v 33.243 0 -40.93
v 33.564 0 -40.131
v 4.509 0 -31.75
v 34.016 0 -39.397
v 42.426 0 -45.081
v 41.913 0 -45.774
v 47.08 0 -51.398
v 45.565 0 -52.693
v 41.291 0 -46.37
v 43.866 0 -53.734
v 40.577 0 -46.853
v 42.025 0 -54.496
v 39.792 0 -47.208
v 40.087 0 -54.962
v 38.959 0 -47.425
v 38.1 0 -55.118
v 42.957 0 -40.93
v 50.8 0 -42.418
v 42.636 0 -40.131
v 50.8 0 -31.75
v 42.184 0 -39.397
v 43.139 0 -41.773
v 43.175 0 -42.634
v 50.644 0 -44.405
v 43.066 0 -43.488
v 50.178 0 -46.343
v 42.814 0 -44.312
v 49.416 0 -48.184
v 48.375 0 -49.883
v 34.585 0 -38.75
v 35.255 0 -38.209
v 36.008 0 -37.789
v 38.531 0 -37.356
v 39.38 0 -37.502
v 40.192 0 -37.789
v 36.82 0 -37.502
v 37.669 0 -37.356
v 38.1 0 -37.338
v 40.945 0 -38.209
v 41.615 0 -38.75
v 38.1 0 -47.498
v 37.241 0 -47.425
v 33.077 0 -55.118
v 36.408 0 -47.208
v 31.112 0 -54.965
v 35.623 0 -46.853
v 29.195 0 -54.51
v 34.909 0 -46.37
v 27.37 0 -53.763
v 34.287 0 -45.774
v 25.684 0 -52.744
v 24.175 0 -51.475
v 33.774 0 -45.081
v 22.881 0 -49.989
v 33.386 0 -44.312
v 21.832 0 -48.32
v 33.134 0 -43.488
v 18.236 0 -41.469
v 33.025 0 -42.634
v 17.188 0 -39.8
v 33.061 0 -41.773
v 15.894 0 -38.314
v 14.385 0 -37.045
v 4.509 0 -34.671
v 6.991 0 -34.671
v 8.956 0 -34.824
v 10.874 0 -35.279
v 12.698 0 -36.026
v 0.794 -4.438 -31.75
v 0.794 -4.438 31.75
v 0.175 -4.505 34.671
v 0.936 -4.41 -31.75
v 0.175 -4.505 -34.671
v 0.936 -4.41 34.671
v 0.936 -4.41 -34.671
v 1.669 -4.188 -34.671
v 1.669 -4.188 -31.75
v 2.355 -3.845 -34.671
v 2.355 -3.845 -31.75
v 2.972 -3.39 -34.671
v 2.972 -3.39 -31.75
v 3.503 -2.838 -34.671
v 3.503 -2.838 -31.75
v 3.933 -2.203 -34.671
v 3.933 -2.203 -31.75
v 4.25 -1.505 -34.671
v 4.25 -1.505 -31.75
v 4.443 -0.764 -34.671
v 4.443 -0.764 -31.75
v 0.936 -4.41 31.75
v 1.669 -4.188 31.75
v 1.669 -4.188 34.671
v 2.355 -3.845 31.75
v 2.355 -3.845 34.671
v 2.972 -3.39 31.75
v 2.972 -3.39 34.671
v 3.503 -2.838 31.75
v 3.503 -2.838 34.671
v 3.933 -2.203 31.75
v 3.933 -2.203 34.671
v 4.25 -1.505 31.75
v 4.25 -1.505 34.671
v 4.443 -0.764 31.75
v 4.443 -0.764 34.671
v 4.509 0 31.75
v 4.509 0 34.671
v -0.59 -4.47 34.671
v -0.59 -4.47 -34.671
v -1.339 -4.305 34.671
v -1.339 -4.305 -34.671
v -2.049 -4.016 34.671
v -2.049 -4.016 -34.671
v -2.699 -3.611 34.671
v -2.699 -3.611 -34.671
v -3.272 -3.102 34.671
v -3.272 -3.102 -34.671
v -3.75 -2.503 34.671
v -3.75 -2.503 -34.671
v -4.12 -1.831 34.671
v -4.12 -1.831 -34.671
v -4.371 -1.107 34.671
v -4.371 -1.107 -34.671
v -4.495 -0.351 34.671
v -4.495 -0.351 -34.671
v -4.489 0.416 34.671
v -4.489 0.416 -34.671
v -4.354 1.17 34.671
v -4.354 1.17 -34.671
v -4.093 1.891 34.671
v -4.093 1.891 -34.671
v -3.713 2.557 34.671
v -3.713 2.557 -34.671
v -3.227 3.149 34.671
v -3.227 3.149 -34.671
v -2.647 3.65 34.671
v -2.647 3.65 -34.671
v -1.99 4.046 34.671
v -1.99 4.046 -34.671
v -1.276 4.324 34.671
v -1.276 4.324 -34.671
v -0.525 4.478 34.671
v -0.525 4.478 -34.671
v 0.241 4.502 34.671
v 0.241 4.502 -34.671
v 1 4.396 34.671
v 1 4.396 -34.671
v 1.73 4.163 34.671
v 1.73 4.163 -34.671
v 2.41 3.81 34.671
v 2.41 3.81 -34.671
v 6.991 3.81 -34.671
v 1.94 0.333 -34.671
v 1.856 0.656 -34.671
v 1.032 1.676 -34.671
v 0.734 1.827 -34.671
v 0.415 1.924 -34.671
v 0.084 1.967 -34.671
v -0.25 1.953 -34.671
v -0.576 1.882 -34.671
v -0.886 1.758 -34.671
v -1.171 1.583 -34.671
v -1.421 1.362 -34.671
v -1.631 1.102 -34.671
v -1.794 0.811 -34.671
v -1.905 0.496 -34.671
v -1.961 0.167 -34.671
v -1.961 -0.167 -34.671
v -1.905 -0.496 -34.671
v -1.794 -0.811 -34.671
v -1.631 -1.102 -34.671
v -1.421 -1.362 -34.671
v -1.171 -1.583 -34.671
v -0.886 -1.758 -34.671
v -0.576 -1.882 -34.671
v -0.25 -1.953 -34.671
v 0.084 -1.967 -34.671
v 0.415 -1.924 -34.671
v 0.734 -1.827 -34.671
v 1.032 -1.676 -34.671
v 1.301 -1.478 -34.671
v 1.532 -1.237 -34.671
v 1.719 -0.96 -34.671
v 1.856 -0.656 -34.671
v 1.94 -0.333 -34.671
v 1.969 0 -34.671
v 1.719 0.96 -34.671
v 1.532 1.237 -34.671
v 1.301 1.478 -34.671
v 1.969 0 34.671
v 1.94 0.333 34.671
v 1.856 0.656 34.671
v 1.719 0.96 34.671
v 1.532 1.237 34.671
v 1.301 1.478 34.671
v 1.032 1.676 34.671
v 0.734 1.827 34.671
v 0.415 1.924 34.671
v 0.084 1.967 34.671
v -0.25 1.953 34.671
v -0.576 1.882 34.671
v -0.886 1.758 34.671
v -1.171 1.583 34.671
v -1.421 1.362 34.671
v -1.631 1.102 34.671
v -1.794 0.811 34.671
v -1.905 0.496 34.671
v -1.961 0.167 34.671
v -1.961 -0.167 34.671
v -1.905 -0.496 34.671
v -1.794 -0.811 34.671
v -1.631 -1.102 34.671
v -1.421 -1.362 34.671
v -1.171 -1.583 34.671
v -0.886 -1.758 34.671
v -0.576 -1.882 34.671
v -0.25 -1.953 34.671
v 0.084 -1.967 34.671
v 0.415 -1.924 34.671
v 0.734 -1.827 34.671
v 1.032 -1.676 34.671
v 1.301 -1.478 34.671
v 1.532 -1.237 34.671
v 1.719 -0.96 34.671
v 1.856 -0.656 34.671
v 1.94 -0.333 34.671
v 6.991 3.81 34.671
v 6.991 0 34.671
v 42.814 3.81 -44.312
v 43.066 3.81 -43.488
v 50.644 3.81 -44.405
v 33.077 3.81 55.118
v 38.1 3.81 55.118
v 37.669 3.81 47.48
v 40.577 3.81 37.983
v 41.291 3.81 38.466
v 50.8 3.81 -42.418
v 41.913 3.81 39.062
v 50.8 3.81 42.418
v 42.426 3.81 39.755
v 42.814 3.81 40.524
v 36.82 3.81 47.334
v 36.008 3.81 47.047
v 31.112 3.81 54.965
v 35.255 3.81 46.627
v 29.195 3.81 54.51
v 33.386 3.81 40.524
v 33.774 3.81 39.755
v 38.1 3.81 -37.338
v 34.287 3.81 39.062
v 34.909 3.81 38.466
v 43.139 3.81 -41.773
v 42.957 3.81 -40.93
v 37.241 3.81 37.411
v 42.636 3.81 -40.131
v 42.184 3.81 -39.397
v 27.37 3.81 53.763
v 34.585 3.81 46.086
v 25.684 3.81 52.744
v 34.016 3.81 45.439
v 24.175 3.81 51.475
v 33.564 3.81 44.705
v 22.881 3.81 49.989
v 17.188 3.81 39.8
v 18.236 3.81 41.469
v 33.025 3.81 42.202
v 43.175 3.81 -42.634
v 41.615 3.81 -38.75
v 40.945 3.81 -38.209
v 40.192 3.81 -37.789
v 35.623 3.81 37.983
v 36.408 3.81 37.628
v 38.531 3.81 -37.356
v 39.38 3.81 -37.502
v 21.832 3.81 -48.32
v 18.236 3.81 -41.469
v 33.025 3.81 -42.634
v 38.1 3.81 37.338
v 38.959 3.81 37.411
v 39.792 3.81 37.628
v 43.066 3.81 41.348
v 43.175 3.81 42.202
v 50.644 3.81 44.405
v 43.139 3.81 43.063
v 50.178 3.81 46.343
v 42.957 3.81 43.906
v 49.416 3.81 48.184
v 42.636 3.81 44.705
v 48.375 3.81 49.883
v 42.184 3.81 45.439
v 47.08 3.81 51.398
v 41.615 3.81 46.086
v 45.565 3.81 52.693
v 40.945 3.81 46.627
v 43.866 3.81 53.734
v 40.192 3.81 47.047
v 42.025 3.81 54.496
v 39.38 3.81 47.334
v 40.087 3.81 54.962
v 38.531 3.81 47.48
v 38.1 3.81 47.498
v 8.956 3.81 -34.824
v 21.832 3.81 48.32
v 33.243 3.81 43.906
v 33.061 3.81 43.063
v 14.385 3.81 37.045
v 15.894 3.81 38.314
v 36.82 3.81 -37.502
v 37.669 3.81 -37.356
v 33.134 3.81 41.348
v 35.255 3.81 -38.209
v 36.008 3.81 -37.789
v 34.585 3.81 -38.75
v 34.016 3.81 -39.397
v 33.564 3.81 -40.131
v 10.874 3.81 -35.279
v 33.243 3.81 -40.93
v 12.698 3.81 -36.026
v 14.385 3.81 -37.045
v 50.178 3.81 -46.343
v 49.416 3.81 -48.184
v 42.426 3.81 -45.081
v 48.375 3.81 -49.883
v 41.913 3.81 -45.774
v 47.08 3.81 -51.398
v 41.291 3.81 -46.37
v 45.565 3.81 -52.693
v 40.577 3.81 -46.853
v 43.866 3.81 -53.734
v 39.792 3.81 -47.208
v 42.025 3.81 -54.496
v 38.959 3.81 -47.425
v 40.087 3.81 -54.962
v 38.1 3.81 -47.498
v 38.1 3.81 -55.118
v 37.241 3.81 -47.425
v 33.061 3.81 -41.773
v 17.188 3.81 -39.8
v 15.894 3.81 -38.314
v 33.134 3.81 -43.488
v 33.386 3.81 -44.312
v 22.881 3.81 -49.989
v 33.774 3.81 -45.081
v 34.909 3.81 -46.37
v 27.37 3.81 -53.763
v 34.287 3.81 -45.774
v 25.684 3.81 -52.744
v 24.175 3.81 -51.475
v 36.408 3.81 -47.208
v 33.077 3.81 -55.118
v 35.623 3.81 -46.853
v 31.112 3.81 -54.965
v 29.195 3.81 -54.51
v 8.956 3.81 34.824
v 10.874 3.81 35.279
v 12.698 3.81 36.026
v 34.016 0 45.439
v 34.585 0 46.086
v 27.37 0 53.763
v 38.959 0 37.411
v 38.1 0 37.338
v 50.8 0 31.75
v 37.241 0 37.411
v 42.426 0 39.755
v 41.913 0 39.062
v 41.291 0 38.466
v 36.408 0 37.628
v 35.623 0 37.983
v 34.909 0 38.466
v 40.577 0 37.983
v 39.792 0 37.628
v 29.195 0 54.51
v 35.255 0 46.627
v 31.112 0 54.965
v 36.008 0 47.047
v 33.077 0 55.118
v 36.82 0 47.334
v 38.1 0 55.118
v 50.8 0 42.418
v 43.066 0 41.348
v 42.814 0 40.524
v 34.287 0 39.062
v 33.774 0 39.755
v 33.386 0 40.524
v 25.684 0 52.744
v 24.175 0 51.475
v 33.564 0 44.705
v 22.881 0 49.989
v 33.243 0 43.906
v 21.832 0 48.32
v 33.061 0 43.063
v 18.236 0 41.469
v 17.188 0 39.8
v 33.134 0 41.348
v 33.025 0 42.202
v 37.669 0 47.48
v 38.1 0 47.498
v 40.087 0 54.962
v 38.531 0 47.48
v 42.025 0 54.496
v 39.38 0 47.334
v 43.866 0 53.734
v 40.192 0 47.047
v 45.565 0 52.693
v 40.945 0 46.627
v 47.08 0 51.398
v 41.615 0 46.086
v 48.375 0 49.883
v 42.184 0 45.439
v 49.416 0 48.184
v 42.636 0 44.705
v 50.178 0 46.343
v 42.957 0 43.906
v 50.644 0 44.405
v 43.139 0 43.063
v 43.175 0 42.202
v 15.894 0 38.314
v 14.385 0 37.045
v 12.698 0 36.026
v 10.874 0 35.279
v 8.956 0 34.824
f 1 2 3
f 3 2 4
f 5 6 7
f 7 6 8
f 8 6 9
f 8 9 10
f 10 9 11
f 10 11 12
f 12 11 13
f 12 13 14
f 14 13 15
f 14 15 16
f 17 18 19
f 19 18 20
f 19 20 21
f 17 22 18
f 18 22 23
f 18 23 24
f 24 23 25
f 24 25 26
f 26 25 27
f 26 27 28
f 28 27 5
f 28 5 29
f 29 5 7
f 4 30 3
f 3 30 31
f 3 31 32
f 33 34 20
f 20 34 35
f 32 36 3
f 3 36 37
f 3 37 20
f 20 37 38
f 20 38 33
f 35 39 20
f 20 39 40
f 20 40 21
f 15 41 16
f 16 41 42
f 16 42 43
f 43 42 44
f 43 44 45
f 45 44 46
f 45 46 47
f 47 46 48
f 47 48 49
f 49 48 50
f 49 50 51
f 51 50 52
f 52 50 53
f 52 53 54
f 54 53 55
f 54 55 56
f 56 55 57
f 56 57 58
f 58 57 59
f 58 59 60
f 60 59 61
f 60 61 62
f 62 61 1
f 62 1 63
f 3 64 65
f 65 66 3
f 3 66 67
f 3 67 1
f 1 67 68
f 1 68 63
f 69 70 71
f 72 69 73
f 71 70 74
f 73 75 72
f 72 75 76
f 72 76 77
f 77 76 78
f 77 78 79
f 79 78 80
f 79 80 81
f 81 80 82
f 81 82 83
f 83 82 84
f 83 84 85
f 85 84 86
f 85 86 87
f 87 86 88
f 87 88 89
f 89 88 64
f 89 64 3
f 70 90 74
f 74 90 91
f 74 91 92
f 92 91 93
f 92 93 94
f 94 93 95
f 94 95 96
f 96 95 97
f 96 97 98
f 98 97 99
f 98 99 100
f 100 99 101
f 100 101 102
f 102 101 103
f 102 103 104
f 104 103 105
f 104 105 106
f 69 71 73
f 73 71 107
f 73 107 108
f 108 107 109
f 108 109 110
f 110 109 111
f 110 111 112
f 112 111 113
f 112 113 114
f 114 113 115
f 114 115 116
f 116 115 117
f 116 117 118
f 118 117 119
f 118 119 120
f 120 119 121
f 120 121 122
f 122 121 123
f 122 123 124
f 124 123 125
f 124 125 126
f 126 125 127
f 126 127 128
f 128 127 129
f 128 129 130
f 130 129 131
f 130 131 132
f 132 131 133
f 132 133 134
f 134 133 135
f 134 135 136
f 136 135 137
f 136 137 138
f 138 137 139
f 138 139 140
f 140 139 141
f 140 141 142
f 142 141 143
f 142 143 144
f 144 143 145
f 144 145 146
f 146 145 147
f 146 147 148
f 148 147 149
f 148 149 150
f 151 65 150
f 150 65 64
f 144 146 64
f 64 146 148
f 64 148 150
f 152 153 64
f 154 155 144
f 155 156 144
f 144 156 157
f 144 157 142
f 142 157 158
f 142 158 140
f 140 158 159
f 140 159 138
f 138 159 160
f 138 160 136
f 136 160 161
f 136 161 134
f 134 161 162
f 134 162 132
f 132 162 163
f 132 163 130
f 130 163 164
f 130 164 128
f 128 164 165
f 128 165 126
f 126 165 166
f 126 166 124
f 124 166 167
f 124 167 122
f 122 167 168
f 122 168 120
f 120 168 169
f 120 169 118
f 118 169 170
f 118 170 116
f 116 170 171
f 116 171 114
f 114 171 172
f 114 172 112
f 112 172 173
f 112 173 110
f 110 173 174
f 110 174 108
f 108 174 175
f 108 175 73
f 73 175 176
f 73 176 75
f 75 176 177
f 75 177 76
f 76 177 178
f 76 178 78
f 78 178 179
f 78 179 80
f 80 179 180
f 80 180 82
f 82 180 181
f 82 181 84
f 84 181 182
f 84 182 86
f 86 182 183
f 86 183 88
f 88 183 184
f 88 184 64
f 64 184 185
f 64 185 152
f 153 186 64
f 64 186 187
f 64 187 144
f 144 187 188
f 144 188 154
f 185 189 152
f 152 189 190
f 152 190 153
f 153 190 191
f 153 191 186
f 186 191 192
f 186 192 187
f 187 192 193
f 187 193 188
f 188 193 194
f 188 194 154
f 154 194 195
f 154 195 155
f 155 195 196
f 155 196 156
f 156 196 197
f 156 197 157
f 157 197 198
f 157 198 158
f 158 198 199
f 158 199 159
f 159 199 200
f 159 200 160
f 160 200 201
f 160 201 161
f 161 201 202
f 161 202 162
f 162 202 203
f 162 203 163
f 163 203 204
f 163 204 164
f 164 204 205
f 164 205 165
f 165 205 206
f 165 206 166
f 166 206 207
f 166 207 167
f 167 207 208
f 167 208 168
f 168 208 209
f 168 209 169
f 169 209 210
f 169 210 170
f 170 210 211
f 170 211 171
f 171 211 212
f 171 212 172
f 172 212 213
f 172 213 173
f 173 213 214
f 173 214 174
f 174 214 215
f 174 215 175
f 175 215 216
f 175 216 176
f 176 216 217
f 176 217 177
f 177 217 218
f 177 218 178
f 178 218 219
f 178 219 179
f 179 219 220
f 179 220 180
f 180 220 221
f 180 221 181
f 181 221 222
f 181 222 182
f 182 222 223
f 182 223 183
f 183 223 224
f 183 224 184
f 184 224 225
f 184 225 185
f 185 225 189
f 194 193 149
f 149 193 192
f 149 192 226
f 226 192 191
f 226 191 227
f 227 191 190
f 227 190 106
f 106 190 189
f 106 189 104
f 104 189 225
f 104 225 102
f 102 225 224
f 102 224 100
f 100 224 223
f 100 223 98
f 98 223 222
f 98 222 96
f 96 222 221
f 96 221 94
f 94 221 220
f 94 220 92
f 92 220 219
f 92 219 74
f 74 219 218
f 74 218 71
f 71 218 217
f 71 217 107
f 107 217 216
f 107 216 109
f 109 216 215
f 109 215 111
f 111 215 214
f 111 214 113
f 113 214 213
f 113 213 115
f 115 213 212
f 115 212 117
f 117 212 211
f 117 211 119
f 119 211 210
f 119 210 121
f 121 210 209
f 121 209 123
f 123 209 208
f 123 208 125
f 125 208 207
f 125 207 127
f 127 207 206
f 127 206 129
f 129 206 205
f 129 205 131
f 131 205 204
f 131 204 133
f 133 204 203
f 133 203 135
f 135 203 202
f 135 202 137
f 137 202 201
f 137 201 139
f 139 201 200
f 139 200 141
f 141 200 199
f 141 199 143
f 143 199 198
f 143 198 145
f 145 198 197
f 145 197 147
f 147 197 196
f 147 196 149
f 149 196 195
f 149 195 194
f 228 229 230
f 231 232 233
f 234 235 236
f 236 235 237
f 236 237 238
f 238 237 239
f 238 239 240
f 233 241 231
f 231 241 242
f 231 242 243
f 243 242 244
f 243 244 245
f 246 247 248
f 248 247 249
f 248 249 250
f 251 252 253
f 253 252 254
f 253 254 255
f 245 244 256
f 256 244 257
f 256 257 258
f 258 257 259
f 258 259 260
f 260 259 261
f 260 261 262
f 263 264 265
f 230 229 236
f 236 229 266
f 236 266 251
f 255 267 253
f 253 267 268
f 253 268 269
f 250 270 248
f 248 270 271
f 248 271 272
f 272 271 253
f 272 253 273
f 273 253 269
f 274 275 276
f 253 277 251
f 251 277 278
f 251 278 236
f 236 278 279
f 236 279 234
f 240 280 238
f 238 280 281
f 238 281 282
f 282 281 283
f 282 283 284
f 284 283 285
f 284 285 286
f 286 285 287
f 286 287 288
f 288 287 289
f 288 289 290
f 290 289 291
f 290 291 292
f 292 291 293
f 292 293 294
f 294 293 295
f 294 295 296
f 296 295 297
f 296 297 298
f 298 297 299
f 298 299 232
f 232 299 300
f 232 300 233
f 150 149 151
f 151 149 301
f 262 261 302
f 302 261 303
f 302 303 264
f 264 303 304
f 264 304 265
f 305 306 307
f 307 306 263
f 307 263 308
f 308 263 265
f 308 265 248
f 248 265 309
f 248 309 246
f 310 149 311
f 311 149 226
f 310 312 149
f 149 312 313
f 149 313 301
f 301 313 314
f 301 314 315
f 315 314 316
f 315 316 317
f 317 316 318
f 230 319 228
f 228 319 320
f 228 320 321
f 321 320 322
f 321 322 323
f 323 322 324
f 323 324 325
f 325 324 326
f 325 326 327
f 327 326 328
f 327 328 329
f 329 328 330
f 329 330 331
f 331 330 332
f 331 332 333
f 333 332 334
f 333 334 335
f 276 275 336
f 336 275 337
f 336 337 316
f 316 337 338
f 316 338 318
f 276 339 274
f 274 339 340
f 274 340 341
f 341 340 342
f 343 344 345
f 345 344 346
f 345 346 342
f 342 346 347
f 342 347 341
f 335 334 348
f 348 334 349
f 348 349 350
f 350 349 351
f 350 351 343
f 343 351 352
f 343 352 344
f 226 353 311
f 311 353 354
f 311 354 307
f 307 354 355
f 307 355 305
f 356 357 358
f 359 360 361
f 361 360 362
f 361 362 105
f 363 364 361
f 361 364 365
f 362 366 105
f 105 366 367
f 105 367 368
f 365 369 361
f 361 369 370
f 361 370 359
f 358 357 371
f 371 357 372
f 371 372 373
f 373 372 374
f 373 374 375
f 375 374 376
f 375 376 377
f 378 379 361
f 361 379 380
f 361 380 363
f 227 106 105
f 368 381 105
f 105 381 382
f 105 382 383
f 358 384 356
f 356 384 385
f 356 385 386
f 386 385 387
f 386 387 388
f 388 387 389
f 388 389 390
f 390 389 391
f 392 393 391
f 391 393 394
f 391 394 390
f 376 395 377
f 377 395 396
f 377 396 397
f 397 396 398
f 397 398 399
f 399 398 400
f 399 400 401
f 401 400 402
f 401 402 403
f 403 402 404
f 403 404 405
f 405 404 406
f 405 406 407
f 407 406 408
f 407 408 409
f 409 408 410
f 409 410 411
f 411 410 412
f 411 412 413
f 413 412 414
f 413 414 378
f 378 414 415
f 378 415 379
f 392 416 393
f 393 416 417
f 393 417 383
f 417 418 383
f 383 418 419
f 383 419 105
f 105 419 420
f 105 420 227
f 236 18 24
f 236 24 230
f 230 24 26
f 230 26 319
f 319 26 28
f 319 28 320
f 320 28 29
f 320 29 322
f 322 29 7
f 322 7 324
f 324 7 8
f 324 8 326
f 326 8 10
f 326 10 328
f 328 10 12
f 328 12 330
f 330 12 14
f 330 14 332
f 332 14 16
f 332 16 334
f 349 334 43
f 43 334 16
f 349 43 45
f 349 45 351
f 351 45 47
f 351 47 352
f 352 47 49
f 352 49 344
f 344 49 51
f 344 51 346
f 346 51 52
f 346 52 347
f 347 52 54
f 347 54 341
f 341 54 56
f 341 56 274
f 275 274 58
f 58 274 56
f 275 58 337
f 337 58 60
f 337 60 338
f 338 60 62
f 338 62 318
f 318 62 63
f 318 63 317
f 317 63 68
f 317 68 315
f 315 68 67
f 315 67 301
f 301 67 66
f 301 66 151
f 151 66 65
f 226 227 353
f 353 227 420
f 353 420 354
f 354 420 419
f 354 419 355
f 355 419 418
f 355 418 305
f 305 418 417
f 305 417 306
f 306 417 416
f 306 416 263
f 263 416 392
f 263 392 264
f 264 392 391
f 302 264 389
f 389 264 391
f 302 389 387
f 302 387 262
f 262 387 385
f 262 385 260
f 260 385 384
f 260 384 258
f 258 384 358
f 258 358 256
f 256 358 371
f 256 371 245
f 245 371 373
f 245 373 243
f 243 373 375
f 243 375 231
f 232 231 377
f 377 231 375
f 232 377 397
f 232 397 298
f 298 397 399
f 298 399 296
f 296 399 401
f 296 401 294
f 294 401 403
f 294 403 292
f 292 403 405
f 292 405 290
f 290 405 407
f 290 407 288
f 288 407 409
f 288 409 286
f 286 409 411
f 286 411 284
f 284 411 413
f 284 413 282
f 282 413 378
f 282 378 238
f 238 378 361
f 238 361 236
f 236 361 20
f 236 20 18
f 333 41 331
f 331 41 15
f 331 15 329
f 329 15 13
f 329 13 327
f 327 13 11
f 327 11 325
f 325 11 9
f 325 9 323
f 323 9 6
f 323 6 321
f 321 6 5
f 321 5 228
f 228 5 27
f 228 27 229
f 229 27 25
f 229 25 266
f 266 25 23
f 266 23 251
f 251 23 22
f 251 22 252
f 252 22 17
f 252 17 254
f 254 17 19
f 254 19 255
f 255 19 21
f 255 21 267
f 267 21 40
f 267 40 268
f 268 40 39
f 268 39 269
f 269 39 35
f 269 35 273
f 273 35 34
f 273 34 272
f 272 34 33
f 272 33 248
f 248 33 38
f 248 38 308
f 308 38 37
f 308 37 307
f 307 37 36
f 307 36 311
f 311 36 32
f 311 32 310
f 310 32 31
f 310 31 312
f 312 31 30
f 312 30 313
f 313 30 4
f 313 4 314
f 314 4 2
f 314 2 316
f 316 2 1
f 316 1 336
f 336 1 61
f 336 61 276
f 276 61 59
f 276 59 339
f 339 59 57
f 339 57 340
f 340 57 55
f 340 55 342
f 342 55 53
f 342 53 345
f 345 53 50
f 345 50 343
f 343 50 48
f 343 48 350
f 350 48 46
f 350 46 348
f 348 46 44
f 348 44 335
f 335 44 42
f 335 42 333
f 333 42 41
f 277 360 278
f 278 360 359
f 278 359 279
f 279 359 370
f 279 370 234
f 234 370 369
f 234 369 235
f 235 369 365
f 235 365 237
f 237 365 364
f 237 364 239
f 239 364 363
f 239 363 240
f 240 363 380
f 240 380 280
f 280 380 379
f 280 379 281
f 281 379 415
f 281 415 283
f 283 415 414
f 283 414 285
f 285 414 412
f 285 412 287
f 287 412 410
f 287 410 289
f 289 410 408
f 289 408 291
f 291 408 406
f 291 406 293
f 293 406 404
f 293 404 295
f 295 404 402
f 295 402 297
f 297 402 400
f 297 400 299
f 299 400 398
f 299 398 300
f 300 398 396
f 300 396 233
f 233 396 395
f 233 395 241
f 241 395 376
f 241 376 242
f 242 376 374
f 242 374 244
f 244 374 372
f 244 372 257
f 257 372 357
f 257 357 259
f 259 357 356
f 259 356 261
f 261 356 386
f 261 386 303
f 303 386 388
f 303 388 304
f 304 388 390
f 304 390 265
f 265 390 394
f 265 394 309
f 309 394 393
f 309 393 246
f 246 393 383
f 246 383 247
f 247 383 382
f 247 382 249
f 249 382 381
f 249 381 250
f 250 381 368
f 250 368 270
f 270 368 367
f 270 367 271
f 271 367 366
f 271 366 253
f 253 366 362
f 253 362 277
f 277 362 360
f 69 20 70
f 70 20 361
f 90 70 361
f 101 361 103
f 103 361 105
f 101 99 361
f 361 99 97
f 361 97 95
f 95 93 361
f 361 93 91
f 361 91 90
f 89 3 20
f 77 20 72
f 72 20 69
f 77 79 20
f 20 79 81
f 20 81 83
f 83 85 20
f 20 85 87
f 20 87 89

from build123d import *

# Parameters (mm, degrees)
MOUNT_CYLINDER_DEPTH      = 34.671
MOUNT_CYLINDER_DEPTH_BACK = 34.671
SKETCH1_R                 = 4.5085
SKETCH1_R_2               = 1.9685
SKETCH2_R                 = 5.08
BOSS_EXTRUDE1_DEPTH       = 3.81
BOSS_EXTRUDE3_DEPTH       = 31.75


with BuildPart() as part:
    # Sketch1 → Mount Cylinder (new, two sides: drawn at the far end of the back side and taken through both)
    with BuildSketch(Plane.XY.offset(-MOUNT_CYLINDER_DEPTH_BACK)):
        Circle(SKETCH1_R)
        Circle(SKETCH1_R_2, mode=Mode.SUBTRACT)
    extrude(amount=MOUNT_CYLINDER_DEPTH + MOUNT_CYLINDER_DEPTH_BACK)

    # Sketch2 → Boss-Extrude1 (add)
    with BuildSketch(Plane(origin=(0, 0, 0), x_dir=(1, 0, 0), z_dir=(0, 1, 0))):
        with BuildLine():
            Line((1.9685, -34.671), (6.991111132, -34.671))
            ThreePointArc((6.991111132, -34.671), (13.561283336, -36.502566939), (18.23638307, -41.468978393))
            Line((18.23638307, -41.468978393), (21.83211693, -48.320021607))
            ThreePointArc((21.83211693, -48.320021607), (26.507216664, -53.286433061), (33.077388868, -55.118))
            Line((33.077388868, -55.118), (38.1, -55.118))
            ThreePointArc((38.1, -55.118), (47.080256121, -51.398256121), (50.8, -42.418))
            Line((50.8, -42.418), (50.8, 42.418))
            ThreePointArc((50.8, 42.418), (47.080256121, 51.398256121), (38.1, 55.118))
            Line((38.1, 55.118), (33.077388868, 55.118))
            ThreePointArc((33.077388868, 55.118), (26.507216664, 53.286433061), (21.83211693, 48.320021607))
            Line((21.83211693, 48.320021607), (18.23638307, 41.468978393))
            ThreePointArc((18.23638307, 41.468978393), (13.561283336, 36.502566939), (6.991111132, 34.671))
            Line((6.991111132, 34.671), (1.9685, 34.671))
            Line((1.9685, 34.671), (1.9685, -34.671))
        make_face()
        with Locations((38.1, 42.418)):
            Circle(SKETCH2_R, mode=Mode.SUBTRACT)
        with Locations((38.1, -42.418)):
            Circle(SKETCH2_R, mode=Mode.SUBTRACT)
    extrude(amount=BOSS_EXTRUDE1_DEPTH)

    # Sketch3 → Boss-Extrude3 (add, symmetric)
    with BuildSketch(Plane.XY):
        Polygon((0, -4.5085), (0, -1.9685), (4.056054733, -1.9685), (4.056054733, 0), (50.8, 0), align=None)
    extrude(amount=BOSS_EXTRUDE3_DEPTH, both=True)


solid = part.part
